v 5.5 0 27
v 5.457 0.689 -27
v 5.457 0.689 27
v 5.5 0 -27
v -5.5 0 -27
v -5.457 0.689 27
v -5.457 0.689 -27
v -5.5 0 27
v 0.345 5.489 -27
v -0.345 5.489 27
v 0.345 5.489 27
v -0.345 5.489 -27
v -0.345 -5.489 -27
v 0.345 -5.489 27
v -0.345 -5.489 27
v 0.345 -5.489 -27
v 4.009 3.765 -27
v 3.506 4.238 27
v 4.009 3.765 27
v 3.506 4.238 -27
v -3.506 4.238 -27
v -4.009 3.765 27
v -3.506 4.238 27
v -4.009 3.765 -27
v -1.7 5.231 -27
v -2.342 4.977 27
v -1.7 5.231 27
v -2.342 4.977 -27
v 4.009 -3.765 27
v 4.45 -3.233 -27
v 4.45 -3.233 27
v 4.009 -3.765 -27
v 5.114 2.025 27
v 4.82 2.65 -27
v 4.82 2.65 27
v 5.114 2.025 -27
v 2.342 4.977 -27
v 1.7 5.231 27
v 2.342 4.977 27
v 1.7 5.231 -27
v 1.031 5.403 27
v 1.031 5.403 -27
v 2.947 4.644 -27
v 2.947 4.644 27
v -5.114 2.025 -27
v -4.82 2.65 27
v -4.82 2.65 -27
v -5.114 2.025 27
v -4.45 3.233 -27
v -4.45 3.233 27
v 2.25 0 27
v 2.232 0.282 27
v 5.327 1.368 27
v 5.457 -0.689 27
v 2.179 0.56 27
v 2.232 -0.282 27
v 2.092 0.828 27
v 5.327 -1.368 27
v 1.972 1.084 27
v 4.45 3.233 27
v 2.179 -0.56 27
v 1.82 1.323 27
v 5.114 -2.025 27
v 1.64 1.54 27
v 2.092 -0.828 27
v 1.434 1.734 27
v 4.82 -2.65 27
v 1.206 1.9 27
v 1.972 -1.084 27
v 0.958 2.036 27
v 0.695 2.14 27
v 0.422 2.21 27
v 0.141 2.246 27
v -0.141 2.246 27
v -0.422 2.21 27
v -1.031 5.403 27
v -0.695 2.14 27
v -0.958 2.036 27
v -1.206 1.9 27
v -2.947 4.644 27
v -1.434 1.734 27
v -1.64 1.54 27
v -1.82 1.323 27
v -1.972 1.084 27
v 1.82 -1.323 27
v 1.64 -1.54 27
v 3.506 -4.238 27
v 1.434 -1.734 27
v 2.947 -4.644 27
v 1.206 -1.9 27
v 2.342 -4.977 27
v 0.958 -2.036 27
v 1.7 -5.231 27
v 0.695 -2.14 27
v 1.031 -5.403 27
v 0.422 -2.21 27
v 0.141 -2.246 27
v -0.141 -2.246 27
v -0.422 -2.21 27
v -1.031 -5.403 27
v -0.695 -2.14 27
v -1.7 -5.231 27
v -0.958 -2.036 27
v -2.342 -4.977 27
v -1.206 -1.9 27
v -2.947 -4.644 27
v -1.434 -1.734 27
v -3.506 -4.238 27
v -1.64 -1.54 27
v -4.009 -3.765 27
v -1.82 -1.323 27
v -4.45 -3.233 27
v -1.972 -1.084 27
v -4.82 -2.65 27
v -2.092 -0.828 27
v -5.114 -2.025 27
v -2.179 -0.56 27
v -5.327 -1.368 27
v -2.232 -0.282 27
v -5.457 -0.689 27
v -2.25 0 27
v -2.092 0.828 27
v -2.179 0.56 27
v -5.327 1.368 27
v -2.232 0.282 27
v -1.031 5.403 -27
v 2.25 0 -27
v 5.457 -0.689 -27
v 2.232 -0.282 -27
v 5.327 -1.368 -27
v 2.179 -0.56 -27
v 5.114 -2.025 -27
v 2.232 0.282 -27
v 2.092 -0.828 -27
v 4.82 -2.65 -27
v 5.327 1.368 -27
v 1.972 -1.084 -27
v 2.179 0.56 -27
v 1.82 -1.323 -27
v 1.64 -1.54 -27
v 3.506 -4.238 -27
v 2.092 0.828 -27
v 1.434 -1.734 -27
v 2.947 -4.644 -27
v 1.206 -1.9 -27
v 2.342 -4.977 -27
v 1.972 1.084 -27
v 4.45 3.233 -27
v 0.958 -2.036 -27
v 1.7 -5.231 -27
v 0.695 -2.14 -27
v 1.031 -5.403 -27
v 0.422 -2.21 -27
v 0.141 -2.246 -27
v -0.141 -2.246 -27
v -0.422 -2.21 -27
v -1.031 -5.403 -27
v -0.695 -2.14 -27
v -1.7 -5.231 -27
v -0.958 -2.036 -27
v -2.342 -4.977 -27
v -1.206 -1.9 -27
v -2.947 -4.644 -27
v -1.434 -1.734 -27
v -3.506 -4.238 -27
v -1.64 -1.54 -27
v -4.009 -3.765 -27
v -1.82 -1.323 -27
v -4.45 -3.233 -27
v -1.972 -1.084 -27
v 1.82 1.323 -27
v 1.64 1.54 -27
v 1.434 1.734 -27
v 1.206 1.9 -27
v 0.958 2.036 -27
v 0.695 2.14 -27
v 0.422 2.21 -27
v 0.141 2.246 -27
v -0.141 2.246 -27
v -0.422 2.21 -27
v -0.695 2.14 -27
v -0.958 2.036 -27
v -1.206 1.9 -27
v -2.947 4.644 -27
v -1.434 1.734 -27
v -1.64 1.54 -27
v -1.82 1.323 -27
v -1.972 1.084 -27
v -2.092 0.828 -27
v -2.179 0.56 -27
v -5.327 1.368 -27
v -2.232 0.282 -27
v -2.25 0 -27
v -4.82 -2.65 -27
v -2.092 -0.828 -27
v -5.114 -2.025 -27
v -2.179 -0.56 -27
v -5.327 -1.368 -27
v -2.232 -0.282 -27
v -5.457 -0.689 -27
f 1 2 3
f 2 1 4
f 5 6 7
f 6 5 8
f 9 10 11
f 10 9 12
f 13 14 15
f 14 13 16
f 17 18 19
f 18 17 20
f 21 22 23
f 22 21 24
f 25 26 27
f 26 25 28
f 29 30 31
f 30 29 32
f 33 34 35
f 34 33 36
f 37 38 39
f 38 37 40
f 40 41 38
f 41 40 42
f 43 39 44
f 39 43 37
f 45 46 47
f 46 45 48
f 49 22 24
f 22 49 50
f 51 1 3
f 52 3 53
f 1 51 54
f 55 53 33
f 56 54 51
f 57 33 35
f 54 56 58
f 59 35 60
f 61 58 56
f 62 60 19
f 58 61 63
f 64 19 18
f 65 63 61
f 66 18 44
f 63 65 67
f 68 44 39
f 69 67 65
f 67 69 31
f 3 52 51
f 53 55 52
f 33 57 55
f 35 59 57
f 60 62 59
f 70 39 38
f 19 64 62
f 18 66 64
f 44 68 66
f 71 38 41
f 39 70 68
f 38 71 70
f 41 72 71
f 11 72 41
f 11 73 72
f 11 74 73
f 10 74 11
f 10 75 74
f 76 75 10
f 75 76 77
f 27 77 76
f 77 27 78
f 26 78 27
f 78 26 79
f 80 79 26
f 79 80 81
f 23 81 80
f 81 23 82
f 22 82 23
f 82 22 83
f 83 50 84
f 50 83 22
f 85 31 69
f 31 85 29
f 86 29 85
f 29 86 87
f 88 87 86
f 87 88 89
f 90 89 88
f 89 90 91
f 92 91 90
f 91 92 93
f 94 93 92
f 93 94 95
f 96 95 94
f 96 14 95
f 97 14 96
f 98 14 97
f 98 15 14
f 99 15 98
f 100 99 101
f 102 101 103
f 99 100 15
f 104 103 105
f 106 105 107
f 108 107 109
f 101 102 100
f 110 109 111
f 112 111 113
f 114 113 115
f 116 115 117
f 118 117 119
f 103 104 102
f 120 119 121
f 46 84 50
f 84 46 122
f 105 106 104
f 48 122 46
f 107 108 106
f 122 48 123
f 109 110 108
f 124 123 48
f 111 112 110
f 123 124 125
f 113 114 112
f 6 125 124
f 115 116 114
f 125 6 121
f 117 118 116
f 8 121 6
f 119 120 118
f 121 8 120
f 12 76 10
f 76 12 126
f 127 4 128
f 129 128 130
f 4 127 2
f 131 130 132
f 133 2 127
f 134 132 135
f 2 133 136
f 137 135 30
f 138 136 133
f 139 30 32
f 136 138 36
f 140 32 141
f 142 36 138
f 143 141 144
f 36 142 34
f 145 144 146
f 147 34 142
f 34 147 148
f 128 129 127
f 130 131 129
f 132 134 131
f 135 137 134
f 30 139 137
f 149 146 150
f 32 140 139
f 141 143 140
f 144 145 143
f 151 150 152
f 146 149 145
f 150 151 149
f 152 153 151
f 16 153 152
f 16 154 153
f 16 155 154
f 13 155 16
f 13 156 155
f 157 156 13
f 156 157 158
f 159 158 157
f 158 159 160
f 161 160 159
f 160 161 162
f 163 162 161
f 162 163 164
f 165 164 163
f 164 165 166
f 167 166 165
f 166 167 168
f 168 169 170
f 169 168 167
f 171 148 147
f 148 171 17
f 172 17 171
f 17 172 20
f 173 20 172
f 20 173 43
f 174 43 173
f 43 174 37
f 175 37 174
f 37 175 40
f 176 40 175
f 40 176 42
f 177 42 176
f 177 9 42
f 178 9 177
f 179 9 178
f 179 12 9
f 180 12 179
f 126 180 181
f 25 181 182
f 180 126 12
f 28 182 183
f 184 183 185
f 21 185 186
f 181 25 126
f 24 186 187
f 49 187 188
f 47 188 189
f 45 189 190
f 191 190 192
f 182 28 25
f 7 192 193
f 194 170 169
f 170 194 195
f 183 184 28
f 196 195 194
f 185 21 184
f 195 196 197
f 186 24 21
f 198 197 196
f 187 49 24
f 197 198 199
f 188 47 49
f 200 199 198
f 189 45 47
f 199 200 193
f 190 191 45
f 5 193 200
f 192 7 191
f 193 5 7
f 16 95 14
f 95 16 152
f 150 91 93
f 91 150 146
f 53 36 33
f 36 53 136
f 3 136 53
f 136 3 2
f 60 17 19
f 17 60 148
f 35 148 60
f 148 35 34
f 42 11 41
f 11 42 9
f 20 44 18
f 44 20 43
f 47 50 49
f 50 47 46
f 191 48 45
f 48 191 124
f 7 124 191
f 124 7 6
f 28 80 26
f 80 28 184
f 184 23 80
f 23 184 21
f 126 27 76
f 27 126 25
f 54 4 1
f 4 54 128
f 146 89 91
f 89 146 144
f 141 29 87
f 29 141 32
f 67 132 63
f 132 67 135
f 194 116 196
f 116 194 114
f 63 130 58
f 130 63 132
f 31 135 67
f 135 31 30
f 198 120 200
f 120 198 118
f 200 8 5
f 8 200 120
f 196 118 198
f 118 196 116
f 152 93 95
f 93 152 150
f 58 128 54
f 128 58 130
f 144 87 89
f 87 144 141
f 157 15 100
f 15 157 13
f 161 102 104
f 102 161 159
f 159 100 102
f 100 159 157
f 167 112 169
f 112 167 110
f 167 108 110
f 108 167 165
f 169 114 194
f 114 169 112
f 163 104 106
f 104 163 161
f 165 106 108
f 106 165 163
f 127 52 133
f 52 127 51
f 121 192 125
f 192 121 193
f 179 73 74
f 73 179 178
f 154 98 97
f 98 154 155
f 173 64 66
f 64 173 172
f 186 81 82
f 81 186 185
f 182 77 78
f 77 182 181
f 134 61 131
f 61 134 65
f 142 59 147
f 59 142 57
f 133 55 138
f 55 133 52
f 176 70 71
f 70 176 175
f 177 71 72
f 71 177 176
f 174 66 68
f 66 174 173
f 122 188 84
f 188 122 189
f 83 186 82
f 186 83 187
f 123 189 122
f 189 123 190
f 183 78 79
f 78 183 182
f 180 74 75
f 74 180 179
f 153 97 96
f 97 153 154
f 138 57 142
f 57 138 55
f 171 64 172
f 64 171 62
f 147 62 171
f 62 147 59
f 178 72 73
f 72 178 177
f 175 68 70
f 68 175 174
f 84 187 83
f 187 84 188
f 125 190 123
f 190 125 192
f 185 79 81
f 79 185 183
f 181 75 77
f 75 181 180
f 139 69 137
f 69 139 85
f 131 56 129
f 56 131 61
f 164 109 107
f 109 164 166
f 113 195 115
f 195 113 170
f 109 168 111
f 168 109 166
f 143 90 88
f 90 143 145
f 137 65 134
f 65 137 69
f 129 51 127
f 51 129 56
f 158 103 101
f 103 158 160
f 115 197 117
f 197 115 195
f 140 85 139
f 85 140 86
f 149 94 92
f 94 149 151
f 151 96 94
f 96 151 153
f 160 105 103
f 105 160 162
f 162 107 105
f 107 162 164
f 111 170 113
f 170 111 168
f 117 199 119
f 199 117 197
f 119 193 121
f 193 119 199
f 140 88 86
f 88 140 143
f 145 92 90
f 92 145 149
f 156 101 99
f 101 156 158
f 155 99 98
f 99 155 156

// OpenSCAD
$fn = 50;


difference() {
	union() {
		translate(v = [0, 0, -27.0000000000]) {
			cylinder(h = 54, r = 5.5000000000);
		}
	}
	union() {
		translate(v = [0, 0, -100.0000000000]) {
			cylinder(h = 200, r = 2.2500000000);
		}
	}
}
